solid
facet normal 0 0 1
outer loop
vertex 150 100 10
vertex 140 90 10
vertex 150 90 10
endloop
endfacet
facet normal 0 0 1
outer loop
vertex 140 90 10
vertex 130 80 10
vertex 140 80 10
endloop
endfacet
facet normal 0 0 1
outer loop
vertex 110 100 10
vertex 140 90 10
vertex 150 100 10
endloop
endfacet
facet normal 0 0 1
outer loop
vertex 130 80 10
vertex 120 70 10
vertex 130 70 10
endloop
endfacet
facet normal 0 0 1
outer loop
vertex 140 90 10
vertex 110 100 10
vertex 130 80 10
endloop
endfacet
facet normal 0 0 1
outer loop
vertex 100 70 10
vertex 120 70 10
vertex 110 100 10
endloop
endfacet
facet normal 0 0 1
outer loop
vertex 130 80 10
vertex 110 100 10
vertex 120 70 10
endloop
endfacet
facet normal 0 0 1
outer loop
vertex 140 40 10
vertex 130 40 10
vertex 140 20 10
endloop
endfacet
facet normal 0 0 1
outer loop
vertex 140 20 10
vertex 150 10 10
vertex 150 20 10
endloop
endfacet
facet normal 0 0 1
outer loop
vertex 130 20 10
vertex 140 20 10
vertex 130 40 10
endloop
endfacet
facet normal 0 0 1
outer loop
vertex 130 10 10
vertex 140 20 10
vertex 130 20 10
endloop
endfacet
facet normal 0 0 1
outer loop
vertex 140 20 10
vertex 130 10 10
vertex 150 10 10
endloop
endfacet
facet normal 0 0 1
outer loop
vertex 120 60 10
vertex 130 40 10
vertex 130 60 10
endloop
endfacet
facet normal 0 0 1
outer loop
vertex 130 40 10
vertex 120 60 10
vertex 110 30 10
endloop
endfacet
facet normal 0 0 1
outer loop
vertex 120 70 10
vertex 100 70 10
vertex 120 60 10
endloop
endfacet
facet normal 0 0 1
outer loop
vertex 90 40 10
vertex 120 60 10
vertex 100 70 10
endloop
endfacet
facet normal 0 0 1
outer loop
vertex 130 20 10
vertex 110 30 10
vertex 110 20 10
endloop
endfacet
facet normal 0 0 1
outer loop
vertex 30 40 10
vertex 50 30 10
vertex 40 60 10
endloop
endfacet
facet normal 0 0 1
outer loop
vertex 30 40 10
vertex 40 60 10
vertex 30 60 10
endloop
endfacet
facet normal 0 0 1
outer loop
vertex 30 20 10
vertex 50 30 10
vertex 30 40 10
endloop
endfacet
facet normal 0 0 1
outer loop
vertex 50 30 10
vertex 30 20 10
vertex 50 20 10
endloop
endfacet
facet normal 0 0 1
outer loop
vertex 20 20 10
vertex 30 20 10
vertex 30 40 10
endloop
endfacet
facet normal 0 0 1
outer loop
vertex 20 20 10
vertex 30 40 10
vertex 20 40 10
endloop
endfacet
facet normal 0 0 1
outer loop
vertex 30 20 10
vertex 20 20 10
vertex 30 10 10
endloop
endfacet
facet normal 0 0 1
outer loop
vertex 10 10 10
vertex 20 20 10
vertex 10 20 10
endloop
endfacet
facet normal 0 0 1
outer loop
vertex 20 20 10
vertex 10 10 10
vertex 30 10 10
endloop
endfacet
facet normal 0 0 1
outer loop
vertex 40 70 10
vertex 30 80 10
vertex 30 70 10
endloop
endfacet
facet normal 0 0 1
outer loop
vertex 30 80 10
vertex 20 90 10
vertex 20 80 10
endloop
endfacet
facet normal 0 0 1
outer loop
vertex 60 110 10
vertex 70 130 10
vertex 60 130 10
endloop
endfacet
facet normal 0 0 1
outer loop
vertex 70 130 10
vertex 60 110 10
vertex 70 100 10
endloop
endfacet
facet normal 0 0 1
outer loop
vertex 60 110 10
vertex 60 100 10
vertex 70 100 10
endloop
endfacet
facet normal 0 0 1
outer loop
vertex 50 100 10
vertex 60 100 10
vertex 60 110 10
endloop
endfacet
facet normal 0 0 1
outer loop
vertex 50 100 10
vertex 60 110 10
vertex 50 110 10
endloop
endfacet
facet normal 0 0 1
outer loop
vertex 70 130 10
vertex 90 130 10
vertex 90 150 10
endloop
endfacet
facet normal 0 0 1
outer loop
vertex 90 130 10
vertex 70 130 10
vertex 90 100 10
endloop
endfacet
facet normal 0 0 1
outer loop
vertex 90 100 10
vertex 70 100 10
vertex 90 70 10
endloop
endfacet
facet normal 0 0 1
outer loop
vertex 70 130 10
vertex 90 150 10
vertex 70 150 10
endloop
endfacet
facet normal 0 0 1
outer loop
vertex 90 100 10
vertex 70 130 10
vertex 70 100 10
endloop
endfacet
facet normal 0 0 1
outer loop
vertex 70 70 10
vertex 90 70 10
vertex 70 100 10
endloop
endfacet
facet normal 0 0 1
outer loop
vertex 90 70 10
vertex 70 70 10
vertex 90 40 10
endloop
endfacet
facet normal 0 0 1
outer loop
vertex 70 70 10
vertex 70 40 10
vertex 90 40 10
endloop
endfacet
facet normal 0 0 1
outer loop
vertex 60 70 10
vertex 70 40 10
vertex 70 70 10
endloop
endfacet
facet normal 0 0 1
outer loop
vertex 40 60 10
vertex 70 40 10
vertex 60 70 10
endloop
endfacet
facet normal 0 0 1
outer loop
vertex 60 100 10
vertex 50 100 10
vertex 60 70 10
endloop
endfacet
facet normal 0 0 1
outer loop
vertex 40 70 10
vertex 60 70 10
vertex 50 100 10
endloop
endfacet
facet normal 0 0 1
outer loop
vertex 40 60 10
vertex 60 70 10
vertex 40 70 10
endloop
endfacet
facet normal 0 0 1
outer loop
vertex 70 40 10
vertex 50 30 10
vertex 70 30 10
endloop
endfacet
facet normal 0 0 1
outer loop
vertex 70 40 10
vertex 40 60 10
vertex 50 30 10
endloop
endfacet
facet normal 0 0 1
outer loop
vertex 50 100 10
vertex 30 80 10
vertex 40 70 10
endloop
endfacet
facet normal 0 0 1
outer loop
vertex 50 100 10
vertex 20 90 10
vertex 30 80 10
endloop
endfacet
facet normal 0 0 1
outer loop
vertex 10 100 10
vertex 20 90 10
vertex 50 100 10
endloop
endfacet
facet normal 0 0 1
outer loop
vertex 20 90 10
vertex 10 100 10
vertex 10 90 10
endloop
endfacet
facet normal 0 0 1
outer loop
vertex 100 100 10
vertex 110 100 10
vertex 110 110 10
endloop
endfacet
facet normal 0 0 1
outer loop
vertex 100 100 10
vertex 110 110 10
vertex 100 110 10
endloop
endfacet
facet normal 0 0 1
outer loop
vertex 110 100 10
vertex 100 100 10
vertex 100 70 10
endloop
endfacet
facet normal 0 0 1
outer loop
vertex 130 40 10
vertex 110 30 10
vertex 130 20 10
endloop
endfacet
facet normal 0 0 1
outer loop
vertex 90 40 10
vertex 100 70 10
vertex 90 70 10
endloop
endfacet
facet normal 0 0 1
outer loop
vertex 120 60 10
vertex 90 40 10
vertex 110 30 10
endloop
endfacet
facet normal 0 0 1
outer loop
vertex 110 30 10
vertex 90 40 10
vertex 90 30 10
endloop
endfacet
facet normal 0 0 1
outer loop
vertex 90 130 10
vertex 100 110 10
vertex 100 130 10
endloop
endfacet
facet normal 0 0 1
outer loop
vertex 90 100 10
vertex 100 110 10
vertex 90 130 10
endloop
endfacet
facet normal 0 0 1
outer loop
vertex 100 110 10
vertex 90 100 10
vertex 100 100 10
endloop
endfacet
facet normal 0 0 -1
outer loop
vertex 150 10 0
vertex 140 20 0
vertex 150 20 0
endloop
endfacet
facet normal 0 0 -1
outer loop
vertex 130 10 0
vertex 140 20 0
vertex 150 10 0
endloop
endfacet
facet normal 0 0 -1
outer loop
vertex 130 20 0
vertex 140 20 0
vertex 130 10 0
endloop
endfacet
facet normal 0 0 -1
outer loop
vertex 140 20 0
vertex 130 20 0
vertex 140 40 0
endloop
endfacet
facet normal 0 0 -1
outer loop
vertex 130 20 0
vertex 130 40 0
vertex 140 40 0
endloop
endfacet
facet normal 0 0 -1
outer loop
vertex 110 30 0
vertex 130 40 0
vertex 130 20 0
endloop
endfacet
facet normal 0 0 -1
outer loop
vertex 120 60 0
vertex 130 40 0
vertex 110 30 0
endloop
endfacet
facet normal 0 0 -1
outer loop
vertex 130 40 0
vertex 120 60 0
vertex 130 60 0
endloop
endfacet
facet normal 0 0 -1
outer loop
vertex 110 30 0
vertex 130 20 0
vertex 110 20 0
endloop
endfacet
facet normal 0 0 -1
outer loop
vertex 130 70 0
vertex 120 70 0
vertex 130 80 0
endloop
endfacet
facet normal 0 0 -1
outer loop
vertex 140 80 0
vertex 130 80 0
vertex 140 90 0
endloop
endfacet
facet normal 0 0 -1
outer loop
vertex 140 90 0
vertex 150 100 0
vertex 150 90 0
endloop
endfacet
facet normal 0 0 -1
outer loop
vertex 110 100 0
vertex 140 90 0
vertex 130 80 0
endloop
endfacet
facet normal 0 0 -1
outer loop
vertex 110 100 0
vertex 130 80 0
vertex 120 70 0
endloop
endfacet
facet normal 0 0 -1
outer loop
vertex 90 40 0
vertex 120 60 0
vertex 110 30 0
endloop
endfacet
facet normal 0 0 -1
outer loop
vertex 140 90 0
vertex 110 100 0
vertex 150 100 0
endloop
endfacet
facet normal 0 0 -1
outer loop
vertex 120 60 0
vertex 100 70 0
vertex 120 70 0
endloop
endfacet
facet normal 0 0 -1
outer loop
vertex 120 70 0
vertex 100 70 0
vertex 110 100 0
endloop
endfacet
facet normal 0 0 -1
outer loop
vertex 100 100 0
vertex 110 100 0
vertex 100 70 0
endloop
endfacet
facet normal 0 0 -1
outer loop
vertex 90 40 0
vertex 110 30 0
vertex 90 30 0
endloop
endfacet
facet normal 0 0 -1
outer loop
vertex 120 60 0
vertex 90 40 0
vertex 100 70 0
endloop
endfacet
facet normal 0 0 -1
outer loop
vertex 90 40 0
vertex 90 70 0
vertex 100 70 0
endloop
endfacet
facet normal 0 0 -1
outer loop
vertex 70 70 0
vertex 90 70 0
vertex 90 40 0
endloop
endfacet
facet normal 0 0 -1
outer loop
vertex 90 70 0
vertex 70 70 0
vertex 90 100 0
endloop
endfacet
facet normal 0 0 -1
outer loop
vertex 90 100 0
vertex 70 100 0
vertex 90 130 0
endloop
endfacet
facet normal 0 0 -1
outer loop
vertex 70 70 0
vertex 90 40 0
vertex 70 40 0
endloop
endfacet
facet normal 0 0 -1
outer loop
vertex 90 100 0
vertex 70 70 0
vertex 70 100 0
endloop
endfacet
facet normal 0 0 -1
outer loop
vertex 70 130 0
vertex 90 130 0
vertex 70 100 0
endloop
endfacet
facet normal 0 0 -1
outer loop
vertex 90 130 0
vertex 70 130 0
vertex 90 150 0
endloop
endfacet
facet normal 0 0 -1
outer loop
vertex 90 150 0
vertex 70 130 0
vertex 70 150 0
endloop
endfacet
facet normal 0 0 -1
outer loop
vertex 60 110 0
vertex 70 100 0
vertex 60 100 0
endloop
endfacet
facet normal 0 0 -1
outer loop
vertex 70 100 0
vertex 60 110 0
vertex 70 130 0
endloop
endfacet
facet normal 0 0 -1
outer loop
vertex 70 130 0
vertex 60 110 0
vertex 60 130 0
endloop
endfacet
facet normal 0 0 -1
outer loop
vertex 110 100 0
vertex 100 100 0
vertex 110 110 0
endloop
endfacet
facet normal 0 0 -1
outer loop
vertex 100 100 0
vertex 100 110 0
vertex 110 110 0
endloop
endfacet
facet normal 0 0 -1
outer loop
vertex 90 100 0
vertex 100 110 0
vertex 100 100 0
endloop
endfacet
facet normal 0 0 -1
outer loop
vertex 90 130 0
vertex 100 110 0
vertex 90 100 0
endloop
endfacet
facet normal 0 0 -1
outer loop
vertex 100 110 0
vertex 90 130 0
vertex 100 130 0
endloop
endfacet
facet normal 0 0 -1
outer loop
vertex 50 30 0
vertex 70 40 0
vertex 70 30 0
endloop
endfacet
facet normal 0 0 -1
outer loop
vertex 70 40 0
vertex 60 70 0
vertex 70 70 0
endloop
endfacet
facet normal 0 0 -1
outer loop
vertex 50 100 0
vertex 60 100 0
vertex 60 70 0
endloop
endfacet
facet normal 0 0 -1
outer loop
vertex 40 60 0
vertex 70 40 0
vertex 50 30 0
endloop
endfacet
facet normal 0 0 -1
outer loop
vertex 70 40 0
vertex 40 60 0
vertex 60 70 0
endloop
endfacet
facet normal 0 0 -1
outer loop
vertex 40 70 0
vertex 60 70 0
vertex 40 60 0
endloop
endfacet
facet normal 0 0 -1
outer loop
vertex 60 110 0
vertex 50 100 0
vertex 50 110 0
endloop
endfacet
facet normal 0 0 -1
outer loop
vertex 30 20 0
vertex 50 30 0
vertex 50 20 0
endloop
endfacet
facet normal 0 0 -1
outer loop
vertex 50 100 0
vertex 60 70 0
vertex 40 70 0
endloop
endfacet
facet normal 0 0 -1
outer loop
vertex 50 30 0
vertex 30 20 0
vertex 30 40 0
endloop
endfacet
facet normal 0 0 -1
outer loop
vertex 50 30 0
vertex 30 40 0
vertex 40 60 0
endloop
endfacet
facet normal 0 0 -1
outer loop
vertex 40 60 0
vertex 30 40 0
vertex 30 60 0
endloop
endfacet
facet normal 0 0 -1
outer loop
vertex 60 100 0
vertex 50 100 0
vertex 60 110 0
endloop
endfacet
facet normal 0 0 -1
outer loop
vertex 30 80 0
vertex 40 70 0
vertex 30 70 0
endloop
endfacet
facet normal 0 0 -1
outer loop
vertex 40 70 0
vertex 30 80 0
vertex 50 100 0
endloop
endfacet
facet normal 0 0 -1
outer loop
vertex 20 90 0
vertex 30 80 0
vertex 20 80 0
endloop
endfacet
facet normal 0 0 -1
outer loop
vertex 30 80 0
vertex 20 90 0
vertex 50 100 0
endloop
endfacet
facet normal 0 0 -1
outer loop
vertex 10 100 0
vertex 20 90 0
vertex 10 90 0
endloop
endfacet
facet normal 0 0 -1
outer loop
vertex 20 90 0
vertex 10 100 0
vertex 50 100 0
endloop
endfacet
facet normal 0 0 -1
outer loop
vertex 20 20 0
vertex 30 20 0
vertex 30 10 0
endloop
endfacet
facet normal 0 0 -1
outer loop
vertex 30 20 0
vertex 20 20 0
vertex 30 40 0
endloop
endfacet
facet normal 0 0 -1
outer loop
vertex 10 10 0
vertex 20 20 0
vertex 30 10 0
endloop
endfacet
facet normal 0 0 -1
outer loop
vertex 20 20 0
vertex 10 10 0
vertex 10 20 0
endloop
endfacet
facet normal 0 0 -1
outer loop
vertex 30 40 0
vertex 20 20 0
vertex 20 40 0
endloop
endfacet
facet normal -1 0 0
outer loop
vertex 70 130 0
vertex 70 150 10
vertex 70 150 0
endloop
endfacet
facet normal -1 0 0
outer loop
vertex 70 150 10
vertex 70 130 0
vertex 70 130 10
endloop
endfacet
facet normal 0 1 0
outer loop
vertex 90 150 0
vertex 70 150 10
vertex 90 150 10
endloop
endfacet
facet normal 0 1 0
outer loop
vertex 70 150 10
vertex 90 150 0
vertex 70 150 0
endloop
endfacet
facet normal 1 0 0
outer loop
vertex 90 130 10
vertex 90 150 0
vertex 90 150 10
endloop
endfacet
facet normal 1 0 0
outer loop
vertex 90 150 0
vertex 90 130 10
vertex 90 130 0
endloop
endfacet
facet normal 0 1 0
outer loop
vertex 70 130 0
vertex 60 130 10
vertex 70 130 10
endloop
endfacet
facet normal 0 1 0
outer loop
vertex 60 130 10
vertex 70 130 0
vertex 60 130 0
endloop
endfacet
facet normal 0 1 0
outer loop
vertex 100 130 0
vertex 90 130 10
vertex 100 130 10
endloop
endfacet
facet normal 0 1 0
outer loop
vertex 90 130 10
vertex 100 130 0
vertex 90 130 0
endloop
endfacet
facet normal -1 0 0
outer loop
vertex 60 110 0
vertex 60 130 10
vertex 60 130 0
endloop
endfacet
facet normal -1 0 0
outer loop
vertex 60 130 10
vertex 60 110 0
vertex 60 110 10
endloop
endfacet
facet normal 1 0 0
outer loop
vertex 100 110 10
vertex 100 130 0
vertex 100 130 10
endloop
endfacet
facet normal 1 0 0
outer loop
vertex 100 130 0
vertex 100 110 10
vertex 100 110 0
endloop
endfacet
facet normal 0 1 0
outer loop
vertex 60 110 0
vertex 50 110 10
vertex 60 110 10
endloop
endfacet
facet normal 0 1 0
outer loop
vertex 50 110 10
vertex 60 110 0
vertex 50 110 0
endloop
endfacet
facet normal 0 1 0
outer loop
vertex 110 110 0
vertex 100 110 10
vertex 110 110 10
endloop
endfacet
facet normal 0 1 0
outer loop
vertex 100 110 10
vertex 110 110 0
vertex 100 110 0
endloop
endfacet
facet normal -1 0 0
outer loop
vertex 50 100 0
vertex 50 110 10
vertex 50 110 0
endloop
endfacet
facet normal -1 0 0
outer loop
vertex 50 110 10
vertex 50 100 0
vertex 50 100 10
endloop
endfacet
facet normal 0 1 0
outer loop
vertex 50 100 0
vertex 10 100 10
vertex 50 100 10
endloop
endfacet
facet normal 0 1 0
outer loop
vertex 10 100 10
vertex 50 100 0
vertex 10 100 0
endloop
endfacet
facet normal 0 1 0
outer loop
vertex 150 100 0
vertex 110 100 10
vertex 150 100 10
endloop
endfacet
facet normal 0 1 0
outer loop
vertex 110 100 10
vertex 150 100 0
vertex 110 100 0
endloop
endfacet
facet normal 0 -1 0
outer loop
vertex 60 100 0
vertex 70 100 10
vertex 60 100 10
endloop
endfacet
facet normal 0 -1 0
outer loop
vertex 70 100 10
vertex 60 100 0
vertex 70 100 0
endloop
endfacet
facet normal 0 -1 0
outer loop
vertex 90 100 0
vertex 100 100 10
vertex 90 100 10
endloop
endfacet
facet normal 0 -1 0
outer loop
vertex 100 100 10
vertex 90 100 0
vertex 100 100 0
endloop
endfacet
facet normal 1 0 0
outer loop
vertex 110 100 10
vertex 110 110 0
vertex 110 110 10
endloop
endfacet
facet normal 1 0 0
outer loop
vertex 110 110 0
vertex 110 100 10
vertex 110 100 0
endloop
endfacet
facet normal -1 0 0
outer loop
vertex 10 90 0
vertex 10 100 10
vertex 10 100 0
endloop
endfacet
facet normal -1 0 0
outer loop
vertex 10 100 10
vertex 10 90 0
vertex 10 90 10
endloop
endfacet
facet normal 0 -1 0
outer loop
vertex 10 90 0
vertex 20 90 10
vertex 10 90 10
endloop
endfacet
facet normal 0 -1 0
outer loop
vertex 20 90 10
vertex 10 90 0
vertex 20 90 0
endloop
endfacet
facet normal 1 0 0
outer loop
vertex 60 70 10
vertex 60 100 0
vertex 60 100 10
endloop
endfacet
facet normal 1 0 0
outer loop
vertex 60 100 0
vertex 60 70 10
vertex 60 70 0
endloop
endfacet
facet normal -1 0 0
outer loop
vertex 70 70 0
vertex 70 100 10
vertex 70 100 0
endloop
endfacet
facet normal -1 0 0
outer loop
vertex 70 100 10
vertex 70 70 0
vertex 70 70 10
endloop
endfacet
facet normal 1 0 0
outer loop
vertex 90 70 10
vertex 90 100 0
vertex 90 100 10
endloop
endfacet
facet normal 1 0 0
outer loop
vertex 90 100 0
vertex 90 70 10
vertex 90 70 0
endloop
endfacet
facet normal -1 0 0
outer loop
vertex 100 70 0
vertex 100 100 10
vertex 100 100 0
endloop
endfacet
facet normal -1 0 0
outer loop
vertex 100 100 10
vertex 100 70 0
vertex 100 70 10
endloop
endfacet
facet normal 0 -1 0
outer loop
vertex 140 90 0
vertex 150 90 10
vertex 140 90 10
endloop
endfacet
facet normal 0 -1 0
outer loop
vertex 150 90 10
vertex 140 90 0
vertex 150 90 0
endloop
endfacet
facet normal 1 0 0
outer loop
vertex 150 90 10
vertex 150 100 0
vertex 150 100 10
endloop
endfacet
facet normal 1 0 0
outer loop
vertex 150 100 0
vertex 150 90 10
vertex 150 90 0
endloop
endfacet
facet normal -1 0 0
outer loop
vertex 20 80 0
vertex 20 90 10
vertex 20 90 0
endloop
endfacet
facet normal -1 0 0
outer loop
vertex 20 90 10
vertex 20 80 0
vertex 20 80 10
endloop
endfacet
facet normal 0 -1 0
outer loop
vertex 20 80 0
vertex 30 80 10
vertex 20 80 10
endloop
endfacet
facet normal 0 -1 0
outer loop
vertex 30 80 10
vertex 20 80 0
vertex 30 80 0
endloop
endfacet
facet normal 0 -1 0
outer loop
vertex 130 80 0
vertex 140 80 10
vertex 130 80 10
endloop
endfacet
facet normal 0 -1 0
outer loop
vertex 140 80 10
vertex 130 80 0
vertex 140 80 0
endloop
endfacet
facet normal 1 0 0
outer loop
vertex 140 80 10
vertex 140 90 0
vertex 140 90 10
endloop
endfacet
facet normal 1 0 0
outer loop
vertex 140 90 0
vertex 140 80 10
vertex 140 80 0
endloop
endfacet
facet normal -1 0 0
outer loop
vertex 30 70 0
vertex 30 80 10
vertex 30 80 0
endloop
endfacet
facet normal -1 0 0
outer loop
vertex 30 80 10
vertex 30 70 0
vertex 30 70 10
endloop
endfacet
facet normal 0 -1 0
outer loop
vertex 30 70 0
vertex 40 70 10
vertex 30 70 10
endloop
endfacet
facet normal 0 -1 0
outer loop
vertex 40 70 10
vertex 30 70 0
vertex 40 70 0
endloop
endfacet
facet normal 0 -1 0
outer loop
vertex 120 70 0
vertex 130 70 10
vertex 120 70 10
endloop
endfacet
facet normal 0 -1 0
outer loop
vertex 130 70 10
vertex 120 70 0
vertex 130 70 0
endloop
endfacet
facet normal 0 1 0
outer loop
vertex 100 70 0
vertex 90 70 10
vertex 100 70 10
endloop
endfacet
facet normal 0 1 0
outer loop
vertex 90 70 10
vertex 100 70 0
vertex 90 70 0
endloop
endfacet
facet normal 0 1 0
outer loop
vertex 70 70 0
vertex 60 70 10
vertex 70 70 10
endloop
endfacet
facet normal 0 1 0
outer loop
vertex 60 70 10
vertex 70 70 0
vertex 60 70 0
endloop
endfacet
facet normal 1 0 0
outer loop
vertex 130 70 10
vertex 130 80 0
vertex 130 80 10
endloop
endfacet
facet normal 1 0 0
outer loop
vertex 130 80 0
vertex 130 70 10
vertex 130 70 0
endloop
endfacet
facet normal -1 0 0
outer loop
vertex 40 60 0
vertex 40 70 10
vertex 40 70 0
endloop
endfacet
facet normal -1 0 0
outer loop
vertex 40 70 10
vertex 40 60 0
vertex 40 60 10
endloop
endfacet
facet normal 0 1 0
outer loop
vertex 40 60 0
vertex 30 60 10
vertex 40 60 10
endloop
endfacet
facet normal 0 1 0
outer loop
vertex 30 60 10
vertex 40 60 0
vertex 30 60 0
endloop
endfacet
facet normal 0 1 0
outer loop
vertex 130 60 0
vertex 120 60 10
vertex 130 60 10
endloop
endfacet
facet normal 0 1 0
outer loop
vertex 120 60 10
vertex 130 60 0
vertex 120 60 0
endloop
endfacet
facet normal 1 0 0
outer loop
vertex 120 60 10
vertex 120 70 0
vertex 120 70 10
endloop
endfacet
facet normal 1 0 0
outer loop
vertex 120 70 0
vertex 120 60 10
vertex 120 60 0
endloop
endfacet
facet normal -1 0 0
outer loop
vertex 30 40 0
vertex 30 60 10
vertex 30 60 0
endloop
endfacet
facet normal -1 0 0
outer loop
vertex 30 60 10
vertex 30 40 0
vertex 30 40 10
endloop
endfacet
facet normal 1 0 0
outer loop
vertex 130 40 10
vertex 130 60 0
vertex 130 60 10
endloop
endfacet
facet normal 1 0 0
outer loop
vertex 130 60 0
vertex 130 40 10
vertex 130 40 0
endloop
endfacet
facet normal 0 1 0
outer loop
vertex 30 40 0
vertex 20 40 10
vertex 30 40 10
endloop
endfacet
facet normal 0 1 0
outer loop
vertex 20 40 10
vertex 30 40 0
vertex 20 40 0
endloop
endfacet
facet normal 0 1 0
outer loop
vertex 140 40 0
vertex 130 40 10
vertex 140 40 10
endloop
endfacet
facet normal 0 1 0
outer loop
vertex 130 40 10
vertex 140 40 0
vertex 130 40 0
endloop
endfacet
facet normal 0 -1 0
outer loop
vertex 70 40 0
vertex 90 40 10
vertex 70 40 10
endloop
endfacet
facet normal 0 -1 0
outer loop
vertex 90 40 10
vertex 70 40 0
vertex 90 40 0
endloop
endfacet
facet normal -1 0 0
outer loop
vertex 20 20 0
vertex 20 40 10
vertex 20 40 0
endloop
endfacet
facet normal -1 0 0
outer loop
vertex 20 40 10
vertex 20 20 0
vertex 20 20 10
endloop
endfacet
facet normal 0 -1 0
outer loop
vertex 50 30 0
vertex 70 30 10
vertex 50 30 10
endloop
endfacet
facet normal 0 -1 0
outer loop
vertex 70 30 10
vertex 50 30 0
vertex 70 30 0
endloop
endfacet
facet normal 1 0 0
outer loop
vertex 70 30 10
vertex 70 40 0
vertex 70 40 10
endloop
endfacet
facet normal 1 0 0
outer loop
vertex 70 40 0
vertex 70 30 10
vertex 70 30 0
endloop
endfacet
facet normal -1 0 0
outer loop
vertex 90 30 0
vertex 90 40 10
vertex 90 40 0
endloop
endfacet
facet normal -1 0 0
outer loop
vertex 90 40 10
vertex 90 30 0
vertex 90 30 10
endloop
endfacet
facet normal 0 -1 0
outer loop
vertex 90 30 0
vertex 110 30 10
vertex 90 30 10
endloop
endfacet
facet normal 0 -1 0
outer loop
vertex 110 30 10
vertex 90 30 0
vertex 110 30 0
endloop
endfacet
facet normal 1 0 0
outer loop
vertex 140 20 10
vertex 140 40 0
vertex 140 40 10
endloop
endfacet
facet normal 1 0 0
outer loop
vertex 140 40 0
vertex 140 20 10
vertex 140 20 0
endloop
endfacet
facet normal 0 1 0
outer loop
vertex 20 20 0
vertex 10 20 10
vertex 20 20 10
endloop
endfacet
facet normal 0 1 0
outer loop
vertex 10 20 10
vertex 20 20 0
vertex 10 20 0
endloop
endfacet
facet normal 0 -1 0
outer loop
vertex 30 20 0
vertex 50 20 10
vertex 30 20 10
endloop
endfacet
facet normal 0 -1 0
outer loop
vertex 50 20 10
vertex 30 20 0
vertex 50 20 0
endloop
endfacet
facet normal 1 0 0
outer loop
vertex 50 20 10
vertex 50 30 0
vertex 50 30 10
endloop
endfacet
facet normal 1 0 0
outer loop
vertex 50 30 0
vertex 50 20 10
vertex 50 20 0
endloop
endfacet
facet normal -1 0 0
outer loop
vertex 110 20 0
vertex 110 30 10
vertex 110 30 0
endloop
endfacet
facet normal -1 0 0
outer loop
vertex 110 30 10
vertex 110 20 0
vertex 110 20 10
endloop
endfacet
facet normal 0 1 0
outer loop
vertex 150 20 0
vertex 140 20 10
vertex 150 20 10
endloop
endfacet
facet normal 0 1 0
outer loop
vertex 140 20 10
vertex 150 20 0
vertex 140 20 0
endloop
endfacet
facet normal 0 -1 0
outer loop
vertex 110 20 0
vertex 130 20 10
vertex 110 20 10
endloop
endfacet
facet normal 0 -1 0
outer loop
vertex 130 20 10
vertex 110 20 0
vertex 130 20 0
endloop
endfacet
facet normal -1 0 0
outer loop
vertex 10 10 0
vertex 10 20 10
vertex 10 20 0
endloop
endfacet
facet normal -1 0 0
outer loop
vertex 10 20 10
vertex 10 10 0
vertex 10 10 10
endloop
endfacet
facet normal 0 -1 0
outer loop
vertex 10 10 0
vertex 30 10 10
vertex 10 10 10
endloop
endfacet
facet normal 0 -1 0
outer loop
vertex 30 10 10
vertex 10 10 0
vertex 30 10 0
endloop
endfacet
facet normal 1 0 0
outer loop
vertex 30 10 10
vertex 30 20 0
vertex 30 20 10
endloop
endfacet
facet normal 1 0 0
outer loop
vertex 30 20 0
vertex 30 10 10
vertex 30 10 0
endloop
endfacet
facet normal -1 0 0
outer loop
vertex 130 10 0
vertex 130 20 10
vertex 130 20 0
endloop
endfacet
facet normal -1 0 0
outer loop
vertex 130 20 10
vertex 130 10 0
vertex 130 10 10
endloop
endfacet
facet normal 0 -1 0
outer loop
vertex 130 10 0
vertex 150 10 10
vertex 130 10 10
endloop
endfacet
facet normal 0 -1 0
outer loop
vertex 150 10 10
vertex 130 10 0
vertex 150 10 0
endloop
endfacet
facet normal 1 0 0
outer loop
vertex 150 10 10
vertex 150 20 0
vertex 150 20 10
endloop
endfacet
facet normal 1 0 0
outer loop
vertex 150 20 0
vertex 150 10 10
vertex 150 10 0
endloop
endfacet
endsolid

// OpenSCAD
/*
 * Starman the Christmas Tree Topper - Yellow
 * Copyright (c) 2020 Anar Software LLC. < http://anars.com >
 *
 * This program is free software: you can redistribute it and/or modify it under
 * the terms of the GNU General Public License as published by the Free Software
 * Foundation, either version 3 of the License, or (at your option) any later
 * version.
 *
 * This program is distributed in the hope that it will be useful, but WITHOUT
 * ANY WARRANTY; without even the implied warranty of MERCHANTABILITY or FITNESS
 * FOR A PARTICULAR PURPOSE. See the GNU General Public License for more details.
 *
 * You should have received a copy of the GNU General Public License along with
 * this program. If not, see < http://www.gnu.org/licenses/ >
 *
 */

/* [Global] */

/* [Pixel Settings] */

// Pixel Length in mm (X)
pixel_length = 10;

// Pixel Width in mm (Y)
pixel_width = 10;

// Pixel Height in mm (Z)
pixel_height = 10;

/* [Hidden] */

data=[[
     "",
     "       XX",
     "       XX",
     "      XXXX",
     "      XXXX",
     "     XXXXXX",
     " XXXXX XX XXXXX",
     "  XXXX XX XXXX",
     "   XXX XX XXX",
     "    XXXXXXXX",
     "   XXXXXXXXXX",
     "   XXXXXXXXXX",
     "  XXXXX  XXXXX",
     "  XXX      XXX",
     " XX          XX",
     ""
     ]];

for (z = [0 : len(data) - 1])
    for (y = [0 : len(data[z]) - 1])
        if (len(data[z][y]) > 0)
            for (x = [0 : len(data[z][y]) - 1])
                if (data[z][y][x] == "X")
                    translate([x * pixel_length, (len(data[z]) - 1 - y) * pixel_width, z * pixel_height])
                        color("#FFFF00")
                            cube([pixel_length, pixel_width, pixel_height]);
